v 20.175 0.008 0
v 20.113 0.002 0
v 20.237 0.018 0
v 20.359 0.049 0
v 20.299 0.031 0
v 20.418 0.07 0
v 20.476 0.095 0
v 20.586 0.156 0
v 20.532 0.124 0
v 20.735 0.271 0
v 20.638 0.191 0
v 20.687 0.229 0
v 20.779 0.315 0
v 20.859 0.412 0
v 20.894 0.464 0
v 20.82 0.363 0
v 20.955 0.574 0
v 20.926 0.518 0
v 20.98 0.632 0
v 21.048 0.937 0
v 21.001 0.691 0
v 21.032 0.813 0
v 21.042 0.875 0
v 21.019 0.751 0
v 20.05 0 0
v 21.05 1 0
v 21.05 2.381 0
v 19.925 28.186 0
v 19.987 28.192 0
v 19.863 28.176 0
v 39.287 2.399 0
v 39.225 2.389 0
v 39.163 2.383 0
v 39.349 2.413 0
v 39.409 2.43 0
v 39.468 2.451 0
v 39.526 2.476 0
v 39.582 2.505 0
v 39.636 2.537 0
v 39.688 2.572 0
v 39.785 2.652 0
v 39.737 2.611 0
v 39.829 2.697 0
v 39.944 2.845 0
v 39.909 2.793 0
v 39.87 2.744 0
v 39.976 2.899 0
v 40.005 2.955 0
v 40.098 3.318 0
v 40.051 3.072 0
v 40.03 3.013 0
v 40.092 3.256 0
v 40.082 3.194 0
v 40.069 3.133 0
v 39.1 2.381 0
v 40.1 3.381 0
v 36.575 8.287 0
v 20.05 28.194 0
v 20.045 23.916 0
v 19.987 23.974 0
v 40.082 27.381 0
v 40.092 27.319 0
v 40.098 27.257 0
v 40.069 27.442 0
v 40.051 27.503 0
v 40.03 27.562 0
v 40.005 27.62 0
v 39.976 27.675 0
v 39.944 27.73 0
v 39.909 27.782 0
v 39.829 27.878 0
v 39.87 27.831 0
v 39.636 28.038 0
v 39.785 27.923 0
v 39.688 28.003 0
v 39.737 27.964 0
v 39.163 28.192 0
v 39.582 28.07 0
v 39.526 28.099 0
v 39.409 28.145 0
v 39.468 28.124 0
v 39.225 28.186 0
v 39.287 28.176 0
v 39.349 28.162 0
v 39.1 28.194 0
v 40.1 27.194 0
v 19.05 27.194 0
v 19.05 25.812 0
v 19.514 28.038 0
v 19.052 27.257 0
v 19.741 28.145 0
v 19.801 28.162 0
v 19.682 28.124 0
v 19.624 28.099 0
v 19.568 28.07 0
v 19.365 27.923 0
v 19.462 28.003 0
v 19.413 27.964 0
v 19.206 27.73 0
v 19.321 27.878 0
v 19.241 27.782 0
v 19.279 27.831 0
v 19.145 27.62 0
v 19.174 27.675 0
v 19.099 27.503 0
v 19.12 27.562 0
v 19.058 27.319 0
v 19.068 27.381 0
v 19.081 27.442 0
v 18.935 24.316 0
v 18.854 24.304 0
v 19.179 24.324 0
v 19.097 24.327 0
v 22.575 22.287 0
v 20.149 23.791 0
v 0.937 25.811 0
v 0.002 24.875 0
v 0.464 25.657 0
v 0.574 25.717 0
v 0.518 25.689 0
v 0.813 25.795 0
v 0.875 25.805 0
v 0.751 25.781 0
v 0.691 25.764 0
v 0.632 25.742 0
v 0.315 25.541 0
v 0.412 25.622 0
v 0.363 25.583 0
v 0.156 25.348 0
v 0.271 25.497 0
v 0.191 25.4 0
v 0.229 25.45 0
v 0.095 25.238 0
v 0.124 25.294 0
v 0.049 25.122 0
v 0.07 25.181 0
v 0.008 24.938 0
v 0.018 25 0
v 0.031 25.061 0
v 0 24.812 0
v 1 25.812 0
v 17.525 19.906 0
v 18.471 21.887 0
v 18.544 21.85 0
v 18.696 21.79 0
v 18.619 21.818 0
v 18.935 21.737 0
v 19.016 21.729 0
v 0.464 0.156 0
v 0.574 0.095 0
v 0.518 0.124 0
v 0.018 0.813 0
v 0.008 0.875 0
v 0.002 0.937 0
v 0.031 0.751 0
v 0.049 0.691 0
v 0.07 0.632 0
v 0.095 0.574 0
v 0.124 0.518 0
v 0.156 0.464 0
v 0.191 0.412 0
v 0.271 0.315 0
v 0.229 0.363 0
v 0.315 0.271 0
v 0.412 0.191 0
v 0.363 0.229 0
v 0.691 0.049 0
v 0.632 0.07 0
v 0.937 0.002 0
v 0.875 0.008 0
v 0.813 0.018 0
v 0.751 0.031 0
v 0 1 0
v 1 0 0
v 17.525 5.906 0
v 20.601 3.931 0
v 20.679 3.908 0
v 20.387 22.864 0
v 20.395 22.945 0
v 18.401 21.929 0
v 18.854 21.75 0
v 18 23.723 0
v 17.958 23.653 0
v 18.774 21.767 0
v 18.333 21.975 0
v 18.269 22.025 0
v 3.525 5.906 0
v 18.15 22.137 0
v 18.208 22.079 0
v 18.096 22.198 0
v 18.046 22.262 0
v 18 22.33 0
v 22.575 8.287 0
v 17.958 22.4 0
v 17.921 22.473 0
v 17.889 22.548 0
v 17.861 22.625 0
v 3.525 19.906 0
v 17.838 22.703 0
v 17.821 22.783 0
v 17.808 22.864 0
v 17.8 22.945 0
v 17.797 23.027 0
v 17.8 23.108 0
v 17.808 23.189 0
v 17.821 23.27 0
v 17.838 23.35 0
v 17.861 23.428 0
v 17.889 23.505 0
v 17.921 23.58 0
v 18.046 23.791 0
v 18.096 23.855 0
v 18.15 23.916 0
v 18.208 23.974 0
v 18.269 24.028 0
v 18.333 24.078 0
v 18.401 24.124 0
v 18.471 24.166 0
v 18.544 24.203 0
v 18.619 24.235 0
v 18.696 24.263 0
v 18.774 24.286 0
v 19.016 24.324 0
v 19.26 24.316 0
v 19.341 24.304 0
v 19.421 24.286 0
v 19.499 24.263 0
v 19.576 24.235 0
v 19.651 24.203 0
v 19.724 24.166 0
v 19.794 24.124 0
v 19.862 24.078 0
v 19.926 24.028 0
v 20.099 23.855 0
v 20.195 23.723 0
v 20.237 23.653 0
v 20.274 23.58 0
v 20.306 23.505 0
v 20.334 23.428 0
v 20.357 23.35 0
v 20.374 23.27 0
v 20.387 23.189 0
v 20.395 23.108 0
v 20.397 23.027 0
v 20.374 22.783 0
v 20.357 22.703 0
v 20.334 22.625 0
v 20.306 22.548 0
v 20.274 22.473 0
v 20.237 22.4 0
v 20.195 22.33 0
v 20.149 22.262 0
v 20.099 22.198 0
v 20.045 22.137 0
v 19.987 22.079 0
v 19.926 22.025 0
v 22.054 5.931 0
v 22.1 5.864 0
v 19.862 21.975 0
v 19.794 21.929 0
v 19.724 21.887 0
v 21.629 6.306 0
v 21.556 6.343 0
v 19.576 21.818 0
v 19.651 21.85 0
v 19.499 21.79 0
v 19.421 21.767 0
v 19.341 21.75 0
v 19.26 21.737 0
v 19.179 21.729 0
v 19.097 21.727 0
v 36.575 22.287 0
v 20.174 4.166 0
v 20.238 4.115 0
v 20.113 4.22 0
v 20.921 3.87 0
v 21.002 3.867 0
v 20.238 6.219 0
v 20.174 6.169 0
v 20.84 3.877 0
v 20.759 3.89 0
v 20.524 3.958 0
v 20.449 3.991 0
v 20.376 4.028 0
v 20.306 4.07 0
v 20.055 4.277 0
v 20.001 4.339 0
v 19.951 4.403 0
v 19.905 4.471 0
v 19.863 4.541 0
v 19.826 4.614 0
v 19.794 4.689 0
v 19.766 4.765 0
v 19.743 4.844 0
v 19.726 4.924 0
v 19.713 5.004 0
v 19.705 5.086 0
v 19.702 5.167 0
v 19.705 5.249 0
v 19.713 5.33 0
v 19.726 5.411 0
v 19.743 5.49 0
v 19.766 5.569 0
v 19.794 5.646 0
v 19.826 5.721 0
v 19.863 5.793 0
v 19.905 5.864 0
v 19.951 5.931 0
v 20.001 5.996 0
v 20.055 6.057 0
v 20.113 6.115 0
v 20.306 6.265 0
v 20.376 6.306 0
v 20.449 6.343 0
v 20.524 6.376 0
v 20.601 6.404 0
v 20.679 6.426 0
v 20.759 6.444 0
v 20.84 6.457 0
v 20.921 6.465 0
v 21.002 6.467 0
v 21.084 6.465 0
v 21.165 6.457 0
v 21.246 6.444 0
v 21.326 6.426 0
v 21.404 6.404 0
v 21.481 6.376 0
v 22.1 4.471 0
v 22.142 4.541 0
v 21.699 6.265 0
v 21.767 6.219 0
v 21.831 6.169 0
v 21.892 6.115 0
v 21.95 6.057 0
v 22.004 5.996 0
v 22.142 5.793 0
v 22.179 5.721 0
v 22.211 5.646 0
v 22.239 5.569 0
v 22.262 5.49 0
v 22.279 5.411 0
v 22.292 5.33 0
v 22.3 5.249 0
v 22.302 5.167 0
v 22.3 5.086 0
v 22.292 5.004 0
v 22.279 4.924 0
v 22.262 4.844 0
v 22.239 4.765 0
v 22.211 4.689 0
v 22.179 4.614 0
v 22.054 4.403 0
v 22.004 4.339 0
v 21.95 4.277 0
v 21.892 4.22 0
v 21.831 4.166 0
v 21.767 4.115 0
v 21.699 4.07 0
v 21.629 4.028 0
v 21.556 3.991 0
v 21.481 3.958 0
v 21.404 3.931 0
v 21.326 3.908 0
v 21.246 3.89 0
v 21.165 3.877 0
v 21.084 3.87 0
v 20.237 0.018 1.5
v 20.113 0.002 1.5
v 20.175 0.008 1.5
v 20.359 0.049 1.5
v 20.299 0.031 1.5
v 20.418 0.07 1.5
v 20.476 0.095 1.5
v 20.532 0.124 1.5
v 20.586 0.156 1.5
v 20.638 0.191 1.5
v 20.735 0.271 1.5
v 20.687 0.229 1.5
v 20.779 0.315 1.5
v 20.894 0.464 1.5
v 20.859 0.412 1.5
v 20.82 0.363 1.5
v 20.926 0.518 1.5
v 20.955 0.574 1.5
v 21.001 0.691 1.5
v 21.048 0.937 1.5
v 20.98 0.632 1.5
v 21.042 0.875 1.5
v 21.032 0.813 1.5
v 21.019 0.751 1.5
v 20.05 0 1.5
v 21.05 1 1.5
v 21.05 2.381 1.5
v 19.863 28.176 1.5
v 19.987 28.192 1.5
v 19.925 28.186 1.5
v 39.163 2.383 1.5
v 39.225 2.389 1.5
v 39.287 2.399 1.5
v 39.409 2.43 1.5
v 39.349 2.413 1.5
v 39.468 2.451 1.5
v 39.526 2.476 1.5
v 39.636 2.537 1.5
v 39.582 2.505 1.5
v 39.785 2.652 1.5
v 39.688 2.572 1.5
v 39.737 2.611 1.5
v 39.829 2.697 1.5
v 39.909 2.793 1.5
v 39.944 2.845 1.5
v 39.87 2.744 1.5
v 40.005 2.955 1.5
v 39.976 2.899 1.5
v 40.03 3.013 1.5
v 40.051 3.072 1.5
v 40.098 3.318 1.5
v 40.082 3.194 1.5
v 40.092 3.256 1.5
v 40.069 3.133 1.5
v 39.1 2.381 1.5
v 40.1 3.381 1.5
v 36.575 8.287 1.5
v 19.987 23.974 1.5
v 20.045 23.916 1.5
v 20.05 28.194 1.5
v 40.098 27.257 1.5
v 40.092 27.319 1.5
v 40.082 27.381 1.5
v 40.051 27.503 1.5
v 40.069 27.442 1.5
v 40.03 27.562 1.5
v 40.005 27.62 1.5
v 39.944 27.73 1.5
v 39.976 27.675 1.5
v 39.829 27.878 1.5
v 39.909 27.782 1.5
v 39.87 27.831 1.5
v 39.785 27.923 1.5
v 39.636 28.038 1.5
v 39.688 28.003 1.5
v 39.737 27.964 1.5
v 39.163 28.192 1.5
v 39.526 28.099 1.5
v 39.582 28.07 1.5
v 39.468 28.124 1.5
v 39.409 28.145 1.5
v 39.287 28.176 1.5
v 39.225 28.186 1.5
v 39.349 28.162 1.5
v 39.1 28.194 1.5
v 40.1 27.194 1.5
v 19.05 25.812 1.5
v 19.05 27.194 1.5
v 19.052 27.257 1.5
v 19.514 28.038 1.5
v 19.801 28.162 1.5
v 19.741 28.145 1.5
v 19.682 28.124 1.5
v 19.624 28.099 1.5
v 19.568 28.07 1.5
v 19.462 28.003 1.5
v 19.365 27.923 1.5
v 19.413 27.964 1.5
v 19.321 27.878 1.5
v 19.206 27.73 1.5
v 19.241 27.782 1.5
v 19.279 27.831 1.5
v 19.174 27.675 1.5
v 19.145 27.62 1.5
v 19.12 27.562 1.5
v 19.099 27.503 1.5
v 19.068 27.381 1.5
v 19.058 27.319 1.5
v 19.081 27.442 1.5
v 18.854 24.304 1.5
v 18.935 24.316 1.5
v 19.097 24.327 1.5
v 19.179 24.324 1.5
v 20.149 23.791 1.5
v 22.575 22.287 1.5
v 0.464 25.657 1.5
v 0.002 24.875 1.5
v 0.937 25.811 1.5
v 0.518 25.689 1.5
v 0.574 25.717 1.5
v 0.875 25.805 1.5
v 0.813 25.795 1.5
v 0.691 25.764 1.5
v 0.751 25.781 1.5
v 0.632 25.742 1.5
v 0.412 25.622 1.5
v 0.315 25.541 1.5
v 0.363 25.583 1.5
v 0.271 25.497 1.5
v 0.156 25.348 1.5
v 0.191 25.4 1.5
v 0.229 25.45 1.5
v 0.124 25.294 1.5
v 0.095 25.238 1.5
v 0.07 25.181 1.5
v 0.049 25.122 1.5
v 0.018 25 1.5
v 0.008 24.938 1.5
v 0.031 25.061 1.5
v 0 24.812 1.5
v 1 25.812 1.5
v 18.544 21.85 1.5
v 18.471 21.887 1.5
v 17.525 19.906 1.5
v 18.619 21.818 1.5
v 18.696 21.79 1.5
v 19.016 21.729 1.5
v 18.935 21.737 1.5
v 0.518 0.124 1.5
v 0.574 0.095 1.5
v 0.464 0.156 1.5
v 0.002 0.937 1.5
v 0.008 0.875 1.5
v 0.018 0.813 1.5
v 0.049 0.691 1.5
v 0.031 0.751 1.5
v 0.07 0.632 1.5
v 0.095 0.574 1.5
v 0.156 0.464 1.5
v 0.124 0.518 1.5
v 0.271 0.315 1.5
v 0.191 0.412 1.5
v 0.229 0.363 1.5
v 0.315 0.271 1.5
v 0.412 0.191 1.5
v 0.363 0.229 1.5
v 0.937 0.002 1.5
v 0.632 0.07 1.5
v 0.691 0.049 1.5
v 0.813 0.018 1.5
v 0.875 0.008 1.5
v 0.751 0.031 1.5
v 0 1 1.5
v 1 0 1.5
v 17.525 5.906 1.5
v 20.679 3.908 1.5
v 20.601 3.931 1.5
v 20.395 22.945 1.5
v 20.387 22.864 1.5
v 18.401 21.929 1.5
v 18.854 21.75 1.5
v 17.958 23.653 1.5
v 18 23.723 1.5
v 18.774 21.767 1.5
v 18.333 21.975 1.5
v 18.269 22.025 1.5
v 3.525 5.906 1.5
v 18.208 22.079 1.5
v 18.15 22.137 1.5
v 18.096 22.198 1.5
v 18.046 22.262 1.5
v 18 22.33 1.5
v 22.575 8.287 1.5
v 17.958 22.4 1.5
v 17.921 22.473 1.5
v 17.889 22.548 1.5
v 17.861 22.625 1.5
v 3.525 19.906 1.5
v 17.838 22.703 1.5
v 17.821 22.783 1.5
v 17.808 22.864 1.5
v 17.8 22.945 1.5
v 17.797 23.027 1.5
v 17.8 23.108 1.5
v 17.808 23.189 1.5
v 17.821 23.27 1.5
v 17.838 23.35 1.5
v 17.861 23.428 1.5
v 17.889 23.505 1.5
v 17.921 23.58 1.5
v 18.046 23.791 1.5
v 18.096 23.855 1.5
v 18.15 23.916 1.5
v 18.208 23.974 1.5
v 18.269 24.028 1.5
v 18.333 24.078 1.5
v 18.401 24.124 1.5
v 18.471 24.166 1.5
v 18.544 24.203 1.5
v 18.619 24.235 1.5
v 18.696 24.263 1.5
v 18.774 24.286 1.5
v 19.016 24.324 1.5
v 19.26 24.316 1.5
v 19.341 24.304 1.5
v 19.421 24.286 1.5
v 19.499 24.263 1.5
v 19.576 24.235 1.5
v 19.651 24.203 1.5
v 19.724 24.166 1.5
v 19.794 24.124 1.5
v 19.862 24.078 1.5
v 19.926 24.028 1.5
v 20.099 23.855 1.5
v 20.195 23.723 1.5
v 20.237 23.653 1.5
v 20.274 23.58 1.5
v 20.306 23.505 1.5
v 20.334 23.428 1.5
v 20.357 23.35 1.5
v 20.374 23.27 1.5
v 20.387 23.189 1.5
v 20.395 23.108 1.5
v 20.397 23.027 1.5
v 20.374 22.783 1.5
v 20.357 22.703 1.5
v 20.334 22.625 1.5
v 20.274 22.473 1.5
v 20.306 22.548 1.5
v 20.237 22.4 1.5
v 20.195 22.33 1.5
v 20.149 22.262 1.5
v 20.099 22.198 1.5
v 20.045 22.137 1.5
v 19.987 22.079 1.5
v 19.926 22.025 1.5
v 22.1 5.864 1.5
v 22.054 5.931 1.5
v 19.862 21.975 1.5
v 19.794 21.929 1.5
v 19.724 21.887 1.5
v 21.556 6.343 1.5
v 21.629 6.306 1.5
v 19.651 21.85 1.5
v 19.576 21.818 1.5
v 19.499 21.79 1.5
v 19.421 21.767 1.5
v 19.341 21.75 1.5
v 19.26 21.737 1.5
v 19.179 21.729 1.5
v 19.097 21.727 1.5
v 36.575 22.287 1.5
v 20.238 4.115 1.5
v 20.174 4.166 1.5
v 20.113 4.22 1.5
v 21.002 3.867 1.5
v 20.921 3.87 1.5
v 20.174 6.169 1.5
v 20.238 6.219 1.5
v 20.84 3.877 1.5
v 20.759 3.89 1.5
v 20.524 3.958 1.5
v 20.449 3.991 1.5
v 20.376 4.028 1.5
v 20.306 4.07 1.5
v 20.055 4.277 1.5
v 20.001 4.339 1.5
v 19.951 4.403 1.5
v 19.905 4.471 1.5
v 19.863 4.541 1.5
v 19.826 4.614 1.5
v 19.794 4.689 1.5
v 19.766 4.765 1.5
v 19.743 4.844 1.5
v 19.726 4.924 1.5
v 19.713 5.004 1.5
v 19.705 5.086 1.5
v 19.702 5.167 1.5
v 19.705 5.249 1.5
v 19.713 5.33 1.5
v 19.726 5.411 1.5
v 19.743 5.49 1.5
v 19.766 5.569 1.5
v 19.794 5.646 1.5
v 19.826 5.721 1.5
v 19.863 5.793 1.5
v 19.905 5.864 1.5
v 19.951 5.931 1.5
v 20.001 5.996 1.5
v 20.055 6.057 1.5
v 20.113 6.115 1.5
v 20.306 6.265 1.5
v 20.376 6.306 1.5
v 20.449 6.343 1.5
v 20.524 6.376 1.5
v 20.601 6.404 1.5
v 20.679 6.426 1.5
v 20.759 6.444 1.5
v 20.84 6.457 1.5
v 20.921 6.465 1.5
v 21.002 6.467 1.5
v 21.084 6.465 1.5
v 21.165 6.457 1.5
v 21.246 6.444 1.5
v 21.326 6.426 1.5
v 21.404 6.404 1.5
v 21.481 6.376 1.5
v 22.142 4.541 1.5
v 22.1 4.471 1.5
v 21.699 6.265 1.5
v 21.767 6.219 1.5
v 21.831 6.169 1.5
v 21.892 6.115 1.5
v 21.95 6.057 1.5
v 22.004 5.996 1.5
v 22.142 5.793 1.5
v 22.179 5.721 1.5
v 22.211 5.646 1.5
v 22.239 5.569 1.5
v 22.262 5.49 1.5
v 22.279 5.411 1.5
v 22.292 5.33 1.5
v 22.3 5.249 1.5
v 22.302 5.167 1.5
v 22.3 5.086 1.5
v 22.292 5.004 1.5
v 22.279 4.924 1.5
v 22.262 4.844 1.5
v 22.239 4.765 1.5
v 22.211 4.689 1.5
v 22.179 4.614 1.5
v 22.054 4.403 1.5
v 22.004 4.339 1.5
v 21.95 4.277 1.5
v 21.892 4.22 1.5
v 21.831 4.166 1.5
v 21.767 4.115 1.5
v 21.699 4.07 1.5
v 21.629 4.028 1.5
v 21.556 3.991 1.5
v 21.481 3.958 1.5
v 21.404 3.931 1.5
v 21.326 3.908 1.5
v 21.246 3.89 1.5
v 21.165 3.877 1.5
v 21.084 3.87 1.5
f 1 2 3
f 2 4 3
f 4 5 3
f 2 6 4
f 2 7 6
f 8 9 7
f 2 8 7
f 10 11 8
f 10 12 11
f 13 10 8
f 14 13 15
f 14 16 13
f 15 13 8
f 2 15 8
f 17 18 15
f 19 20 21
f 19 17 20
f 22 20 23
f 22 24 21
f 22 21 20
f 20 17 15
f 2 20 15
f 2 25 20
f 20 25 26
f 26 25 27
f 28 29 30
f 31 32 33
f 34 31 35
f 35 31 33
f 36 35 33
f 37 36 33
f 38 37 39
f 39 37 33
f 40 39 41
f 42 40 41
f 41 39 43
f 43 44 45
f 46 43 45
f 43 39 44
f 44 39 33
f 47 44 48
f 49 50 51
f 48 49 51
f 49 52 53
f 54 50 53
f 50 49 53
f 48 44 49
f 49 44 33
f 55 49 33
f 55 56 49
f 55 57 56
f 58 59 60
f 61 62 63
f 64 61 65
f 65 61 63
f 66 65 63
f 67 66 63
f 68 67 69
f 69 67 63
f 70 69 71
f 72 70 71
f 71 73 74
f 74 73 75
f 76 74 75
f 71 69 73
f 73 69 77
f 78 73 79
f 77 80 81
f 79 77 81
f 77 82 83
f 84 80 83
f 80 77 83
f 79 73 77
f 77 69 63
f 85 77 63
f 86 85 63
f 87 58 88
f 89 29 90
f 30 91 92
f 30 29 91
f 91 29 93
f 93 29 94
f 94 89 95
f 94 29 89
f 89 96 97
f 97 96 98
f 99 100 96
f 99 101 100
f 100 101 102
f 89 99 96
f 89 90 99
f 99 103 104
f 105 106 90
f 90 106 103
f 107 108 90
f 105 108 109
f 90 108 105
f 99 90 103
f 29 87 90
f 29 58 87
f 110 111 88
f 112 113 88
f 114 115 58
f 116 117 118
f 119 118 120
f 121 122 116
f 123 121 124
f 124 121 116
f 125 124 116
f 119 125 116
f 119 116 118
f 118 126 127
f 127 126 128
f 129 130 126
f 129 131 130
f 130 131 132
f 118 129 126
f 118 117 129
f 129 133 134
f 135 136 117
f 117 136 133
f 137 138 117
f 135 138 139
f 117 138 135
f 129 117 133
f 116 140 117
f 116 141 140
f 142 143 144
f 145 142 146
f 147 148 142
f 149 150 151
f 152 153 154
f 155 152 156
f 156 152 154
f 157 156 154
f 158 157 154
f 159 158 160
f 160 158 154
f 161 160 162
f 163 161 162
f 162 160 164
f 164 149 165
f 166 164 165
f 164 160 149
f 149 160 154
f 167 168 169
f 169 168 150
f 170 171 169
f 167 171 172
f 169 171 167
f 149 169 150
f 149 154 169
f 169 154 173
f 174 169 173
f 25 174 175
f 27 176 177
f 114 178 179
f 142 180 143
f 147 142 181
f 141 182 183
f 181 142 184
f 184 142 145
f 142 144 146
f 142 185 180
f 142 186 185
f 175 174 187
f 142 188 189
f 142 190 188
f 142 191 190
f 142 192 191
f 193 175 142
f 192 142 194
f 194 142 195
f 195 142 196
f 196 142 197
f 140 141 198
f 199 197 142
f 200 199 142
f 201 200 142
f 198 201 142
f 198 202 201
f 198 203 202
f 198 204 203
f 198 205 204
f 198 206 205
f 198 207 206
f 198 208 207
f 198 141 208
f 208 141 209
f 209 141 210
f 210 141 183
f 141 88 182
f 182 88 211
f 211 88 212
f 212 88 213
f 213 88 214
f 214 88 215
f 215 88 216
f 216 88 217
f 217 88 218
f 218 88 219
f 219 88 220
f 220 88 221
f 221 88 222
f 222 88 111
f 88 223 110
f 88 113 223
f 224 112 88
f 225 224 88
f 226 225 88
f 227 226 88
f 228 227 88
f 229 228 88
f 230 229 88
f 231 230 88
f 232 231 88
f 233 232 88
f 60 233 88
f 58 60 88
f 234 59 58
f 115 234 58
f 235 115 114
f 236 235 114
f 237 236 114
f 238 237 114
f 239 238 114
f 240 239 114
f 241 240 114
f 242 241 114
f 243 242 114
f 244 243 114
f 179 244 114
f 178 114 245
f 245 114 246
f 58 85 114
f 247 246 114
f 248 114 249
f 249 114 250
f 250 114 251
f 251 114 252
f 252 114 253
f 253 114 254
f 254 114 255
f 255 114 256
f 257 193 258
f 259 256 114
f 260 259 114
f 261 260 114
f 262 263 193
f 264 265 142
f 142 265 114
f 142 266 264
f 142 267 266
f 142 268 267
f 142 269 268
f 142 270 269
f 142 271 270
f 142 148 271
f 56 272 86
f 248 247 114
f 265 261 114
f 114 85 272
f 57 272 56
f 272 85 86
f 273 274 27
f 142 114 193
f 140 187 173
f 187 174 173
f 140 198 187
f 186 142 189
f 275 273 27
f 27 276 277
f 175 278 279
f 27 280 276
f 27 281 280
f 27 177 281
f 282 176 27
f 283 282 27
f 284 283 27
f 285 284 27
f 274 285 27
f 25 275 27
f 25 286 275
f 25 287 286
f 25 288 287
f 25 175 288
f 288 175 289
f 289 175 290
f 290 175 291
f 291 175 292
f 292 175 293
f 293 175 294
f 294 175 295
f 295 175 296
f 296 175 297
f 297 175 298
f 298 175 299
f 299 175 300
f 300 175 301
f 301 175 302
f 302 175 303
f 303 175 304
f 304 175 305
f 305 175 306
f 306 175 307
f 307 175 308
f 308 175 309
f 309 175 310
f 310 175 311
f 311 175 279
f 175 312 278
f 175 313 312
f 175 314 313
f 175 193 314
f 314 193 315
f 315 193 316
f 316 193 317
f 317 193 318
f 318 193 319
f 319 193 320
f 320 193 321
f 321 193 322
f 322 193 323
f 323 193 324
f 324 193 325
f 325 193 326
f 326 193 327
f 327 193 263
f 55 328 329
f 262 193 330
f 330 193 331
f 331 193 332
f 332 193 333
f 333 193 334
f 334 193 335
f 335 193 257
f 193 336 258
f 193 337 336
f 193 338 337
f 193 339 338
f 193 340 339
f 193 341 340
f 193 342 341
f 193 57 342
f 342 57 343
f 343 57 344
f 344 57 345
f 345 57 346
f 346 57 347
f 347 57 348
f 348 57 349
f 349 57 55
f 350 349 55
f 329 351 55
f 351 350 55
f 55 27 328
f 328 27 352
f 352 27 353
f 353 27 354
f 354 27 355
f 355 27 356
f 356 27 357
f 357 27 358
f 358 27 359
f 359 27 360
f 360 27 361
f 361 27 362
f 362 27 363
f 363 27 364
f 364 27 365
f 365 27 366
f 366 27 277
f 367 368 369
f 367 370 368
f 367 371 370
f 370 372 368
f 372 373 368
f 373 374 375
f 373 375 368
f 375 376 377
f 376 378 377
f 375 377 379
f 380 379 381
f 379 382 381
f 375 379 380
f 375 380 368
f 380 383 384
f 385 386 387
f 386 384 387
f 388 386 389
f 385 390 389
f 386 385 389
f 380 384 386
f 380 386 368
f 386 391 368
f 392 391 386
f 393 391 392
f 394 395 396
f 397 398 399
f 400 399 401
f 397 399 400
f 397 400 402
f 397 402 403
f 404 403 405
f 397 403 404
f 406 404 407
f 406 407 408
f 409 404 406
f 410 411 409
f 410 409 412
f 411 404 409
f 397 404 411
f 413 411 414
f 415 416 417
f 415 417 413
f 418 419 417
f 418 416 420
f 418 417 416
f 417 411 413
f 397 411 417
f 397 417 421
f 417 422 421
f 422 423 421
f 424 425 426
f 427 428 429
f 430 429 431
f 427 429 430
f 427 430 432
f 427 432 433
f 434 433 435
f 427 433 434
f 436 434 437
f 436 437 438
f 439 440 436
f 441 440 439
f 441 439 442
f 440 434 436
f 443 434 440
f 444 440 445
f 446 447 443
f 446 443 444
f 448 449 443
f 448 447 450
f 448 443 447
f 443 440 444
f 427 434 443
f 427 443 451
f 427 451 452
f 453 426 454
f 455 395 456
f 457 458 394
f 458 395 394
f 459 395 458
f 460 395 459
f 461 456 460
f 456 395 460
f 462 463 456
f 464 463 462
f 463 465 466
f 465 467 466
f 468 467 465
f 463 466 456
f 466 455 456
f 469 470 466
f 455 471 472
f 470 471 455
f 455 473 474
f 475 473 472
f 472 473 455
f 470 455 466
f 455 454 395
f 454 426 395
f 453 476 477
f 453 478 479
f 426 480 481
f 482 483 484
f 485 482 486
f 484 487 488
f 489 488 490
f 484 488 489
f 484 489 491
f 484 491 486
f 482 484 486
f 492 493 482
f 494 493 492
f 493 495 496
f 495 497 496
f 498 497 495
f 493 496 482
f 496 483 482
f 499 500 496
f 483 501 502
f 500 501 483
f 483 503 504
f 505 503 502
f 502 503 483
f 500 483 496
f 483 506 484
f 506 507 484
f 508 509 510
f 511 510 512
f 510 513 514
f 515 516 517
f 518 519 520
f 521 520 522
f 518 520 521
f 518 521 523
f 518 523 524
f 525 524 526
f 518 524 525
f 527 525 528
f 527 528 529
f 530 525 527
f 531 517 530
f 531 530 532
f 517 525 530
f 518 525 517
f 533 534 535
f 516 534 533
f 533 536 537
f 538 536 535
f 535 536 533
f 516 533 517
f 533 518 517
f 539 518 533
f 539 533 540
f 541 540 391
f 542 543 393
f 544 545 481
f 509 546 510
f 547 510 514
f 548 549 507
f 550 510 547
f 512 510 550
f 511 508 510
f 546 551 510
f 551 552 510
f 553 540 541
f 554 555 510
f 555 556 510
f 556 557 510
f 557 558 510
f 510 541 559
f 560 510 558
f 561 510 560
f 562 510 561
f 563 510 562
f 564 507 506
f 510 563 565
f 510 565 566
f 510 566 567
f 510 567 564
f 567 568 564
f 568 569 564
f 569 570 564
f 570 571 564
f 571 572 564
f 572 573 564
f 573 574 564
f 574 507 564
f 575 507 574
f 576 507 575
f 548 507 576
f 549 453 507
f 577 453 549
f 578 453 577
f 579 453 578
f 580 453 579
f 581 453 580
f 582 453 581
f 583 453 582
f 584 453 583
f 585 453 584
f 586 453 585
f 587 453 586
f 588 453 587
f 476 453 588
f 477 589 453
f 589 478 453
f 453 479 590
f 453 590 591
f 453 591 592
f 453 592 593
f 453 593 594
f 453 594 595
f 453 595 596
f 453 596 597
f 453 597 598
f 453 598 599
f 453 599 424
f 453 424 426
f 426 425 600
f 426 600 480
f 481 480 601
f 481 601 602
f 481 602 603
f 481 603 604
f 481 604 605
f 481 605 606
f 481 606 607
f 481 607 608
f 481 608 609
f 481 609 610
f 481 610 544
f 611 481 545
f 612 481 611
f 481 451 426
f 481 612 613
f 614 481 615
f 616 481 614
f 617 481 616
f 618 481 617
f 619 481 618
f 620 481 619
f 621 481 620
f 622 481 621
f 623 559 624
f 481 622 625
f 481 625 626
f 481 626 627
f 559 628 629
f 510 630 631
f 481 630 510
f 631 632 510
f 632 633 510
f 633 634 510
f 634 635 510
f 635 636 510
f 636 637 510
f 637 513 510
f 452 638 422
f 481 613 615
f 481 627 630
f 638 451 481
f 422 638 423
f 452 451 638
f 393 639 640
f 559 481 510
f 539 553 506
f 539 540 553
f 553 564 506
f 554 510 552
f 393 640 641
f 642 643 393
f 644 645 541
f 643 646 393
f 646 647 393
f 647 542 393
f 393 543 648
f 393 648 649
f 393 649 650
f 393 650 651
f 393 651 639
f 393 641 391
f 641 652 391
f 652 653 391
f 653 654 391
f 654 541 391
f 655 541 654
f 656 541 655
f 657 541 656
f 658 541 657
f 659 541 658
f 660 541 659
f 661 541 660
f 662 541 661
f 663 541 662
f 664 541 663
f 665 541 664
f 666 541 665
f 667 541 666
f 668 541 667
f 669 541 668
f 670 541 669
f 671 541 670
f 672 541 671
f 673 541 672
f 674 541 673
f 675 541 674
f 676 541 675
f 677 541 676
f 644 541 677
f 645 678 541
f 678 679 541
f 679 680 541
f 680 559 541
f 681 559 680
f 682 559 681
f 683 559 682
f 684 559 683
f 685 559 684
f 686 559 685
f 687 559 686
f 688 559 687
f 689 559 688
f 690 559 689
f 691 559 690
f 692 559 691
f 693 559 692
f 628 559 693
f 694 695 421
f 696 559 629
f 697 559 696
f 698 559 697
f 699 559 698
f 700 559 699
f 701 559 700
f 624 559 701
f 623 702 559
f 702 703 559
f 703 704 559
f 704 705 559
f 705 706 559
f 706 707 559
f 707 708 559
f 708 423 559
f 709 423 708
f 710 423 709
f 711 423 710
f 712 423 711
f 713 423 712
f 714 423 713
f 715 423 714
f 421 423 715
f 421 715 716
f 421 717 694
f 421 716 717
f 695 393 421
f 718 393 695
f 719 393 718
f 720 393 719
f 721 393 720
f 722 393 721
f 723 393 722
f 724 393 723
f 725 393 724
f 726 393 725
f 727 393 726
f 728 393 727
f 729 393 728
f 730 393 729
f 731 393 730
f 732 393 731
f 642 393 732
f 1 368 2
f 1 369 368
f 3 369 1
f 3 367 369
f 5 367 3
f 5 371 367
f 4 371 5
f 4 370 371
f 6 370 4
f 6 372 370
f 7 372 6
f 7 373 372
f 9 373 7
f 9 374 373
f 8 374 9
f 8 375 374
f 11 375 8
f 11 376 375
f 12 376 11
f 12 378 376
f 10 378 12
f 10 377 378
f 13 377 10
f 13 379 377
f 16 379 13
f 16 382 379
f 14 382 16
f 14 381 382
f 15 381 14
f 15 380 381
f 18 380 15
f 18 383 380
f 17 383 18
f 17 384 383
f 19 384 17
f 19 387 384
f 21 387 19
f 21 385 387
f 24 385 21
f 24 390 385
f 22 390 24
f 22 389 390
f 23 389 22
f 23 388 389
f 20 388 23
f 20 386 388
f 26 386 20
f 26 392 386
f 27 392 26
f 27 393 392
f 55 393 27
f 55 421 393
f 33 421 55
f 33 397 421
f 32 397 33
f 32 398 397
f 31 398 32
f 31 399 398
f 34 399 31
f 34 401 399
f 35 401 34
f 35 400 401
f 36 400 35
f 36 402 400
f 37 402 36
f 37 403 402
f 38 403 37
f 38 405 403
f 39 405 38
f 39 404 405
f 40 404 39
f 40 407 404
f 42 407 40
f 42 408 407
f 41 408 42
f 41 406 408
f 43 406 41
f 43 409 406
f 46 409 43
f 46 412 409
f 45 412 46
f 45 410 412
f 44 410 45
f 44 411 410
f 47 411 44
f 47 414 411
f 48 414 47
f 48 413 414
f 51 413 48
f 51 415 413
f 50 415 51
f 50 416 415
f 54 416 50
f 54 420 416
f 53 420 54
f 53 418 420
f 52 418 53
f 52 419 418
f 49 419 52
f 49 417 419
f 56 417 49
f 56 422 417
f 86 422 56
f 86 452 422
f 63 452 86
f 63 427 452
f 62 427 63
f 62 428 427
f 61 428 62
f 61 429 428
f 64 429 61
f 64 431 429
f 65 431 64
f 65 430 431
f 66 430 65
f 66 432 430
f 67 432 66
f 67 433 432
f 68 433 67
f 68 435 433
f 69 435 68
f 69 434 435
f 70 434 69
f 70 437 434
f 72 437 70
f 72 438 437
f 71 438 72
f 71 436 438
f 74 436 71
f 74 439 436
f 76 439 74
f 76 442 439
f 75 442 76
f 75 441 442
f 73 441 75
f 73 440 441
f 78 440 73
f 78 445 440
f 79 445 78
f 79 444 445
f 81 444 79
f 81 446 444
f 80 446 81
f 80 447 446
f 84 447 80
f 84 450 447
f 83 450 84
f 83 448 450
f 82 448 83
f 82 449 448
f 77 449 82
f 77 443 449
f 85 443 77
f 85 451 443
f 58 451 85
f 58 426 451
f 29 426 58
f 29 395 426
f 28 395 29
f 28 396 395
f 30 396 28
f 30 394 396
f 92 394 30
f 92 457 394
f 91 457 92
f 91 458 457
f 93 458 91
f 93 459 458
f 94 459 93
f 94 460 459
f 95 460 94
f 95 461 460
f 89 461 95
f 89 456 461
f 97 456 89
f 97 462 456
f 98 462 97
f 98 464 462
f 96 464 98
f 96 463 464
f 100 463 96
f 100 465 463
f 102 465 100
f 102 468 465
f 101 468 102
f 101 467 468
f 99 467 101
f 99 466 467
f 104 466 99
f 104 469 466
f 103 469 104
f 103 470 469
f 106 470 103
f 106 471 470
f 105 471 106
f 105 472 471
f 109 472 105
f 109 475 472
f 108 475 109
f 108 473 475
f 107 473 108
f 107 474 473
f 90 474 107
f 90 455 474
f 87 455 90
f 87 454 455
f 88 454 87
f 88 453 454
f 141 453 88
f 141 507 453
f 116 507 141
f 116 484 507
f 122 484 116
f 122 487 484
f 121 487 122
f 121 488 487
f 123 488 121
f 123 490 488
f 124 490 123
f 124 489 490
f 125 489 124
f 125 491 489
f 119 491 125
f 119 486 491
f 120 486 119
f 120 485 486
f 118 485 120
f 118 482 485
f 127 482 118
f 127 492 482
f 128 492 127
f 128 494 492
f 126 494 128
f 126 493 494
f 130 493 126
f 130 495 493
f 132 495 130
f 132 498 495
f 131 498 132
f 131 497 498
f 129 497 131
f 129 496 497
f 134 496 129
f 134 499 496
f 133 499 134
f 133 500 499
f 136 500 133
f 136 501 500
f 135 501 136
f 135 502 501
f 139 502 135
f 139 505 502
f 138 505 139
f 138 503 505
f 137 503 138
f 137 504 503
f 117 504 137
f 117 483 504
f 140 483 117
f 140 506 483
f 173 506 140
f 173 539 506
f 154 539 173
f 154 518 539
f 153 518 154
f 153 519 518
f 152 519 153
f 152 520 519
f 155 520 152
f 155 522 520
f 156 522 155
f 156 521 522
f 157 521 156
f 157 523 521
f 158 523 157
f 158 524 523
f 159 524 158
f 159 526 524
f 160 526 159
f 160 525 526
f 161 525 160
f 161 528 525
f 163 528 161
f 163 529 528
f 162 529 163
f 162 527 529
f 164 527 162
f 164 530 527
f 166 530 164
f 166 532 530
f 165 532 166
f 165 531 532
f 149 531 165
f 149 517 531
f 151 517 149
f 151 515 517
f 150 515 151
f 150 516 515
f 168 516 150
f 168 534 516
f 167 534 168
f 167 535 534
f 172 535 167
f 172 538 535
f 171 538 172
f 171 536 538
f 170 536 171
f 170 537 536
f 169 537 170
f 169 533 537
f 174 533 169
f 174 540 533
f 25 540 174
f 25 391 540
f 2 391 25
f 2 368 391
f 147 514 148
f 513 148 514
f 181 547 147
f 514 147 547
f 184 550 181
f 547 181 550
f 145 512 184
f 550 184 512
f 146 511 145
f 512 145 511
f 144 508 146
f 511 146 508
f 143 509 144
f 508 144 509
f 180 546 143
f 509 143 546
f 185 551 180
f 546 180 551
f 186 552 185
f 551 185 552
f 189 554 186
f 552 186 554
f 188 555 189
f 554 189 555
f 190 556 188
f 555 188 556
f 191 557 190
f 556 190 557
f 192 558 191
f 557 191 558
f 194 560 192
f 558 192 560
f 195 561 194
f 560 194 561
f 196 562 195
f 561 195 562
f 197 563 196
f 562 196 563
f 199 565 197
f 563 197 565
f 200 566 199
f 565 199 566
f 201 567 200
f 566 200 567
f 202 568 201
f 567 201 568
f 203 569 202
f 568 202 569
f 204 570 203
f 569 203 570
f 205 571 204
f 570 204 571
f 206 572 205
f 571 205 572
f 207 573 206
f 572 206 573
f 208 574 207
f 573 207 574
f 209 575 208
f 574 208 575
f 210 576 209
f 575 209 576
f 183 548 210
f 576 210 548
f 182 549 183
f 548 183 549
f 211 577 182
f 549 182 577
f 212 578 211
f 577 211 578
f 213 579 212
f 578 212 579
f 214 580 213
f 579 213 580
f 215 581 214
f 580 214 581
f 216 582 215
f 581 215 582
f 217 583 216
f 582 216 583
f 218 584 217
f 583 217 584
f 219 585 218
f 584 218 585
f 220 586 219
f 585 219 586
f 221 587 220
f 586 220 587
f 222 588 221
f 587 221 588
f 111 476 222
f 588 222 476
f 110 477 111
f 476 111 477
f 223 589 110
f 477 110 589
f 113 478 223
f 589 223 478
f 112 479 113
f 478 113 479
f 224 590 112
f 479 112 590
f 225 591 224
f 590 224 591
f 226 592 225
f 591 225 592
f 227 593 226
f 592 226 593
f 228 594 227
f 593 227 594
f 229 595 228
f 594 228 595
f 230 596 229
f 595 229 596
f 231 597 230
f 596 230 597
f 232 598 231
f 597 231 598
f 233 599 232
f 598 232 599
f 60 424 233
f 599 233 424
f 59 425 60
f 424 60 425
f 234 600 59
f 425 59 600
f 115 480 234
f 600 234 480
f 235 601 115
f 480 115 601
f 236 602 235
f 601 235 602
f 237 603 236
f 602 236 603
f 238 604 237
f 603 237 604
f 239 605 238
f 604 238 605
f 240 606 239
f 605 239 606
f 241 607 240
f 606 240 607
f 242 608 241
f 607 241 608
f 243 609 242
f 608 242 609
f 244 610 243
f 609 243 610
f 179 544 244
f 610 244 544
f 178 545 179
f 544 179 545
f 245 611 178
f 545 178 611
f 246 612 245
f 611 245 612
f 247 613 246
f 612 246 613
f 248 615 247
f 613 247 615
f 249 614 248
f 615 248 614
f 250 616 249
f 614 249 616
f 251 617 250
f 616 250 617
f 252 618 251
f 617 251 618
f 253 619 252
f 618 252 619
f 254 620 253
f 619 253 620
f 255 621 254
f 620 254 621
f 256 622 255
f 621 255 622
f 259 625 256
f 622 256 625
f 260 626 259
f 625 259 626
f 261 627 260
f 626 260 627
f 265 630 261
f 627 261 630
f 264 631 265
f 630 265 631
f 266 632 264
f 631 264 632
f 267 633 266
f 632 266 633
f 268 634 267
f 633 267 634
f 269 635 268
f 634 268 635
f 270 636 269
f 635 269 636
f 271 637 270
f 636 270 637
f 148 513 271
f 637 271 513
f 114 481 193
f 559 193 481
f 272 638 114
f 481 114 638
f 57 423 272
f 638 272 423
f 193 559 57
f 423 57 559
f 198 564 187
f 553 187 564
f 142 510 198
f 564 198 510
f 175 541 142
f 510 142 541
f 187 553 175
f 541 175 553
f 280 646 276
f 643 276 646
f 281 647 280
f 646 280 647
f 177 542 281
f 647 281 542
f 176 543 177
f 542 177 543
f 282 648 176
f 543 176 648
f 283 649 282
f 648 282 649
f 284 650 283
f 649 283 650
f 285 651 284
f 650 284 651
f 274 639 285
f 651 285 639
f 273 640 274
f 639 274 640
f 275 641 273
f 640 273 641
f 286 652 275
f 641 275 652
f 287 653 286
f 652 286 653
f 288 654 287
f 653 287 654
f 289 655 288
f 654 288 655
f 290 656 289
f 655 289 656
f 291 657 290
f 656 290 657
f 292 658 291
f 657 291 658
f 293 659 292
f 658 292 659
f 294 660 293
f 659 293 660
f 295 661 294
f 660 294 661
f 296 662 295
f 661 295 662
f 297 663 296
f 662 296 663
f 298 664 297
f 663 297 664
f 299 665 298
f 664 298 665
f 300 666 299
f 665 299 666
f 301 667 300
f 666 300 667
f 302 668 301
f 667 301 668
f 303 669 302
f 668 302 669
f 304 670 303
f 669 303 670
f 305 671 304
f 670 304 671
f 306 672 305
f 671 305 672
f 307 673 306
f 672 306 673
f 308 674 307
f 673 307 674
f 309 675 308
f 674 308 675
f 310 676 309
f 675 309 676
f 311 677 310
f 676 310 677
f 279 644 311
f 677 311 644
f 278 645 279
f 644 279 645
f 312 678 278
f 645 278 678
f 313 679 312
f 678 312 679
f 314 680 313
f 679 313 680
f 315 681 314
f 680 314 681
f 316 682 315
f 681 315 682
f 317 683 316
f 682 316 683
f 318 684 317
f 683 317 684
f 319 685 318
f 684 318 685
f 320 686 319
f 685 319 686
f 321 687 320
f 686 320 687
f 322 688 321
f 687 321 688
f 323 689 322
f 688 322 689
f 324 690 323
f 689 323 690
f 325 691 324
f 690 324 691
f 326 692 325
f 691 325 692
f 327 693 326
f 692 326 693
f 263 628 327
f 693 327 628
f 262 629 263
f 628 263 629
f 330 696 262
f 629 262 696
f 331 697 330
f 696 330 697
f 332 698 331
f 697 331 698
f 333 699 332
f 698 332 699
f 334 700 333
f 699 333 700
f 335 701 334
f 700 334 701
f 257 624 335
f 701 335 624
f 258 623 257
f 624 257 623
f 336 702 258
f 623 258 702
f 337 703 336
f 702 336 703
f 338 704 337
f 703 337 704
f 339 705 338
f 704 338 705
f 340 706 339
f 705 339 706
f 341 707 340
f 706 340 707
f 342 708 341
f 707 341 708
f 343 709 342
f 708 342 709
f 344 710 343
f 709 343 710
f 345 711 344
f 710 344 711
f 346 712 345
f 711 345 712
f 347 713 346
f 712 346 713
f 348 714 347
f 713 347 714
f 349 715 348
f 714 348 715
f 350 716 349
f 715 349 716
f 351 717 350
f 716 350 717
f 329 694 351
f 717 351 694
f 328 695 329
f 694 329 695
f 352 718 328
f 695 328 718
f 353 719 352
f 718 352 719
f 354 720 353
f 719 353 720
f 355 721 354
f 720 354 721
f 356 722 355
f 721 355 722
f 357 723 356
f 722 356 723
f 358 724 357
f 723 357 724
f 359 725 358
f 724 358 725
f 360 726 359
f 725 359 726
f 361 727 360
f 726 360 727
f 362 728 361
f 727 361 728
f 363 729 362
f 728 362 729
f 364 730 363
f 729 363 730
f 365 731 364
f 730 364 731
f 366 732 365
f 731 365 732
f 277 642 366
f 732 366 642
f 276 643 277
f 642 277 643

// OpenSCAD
// file: ../modules/shapes.scad
// draws a square with rounded corners
module squircle(
    size = [1,1],
    radius = 1,
    center = false){
    
    x = size[0];
    y = size[1];
    radius = min(x/2,min(y/2, radius));
    translation = [0,0];
        
    module corner(){
            intersection(){
                square([radius,radius]);
                translate([radius, radius])
                    circle(radius);
            }
    }
    
    module body(){
    
        corner();
        
        translate([0, y])        
            rotate([0,0,-90])
                corner();
        
        translate([x, y])        
            rotate([0,0,180])
                corner();
        
        translate([x, 0])        
            rotate([0,0, 90])
                corner();
        
        translate([radius, 0])
            square([x - 2 * radius, radius]);
        
        translate([0, radius])
            square([x, y - radius * 2]);
            
        translate([radius, y - radius])
            square([x - 2 * radius, radius]);
    }
    
    if(center)
        translate([-x/2, -y/2])
            body();
    else
        body();
}
// file: ../modules/keycap.scad
use <shapes.scad>

// draws a rough no-profile at keycap 0,0 1U space
module keycap(keyHeight = 1.0){
  
    1U = 19.05;
    width = 18;
    depth = 18 * keyHeight;
    height = 9;

    translate([1U/2, 1U/2, 7])
        linear_extrude(height, scale = [0.7,0.7])
          squircle([width, depth], 1, center = true);	
}

keycap($fn = 100);
// file: ../modules/switch.scad
use<shapes.scad>;

// draws a rough Cherry MX style switch at 0,0 1U space
module switch(){
    
    ringWidth = 15.6;
    ringHeight = 1.0;

    bottomTopWidth = 14.0;
    bottomBottomWidth = 12.0;
    bottomHeight = 5.0;

    topBottomWidth = 14.5;
    topTopWidth = 10;
    topHeight = 11.6 - bottomHeight - ringHeight;

    module switch_stem(){

        width = 3.6;
        height = 3.6;
        depth = 1.2;
        edgeRadius = 0.2;

		color("FireBrick",1)
            translate([0,0, ringHeight + topHeight])
                linear_extrude(height = height){
                    squircle([width, depth], edgeRadius, true);
                    rotate([0,0,90])
                        squircle([width, depth], edgeRadius, true);
                }
    }

    module switch_top(){
		color("WhiteSmoke",1)
            translate([0,0,ringHeight])
                linear_extrude(topHeight, scale = topTopWidth / topBottomWidth)
                    translate([-topBottomWidth/2,-topBottomWidth/2,0])
                        squircle([topBottomWidth,topBottomWidth], 1.0);
    }
                    
    module switch_middle(){
		color("WhiteSmoke",1)
            linear_extrude(ringHeight)
                squircle([ringWidth, ringWidth], 1.0, center = true);
    }

    module switch_bottom(){
		color("WhiteSmoke",1)
            translate([0,0,-bottomHeight])
                linear_extrude(bottomHeight, scale = bottomTopWidth / bottomBottomWidth)
                    translate([-bottomBottomWidth/2,-bottomBottomWidth/2,0])
                        squircle([bottomBottomWidth,bottomBottomWidth], 1.0);
    }

    translate([19.05/2,19.05/2,0]){
        switch_stem();
        switch_top();
        switch_middle();
        switch_bottom();
    }
}

switch();
// file: ../modules/bearingMount.scad
include <../config.scad>;
use <./plate.scad>;

bearingOffsetXY = 
    sqrt(
        (TRACKBALL_DIAMETER * TRACKBALL_DIAMETER) / 4 -
        ((BEARING_OFFSET_Z + PLATE_THICKNESS) * (BEARING_OFFSET_Z + PLATE_THICKNESS)))
        + BEARING_DIAMETER * 0.5;

module hole(){

    linear_extrude(BEARING_BOLT_CLEARANCE_Z){
        boltHole();

        translate([0,-SENSOR_PCB_MOUNT_OFFSET * 0.5])
            square([BOLT_DIAMETER + BOLT_TOLERENCE * 2, SENSOR_PCB_MOUNT_OFFSET], center = true);
    }

    translate([0,0, BEARING_BOLT_CLEARANCE_Z])
        linear_extrude(BOLT_TOP_HEIGHT){

            circle(d = BOLT_TOP_DIAMETER + BOLT_TOLERENCE * 2);            
            
            translate([0,-SENSOR_PCB_MOUNT_OFFSET * 0.5])
                square([BOLT_TOP_DIAMETER + BOLT_TOLERENCE * 2, SENSOR_PCB_MOUNT_OFFSET], center = true);
        }
    
}

module ring(){

    trackballRadius = getTrackballHoleRadius();
    ringWidthBottom = TRACKBALL_PLATE_BEZEL;
    
    union(){

        rotate_extrude(convexity = 10)
            minkowski(){
                difference(){
                    polygon([
                        [0,0],
                        [trackballRadius + ringWidthBottom - BEARING_MOUNT_TOP_CURVE_RADIUS, 0],
                        [trackballRadius - BEARING_MOUNT_TOP_CURVE_RADIUS + BEARING_MOUNT_TOP_X_MAX, BEARING_MOUNT_HEIGHT - BEARING_MOUNT_TOP_CURVE_RADIUS],
                        [0, BEARING_MOUNT_HEIGHT - BEARING_MOUNT_TOP_CURVE_RADIUS],
                    ]);
                    
                    ballCutoutRadius = TRACKBALL_DIAMETER * 0.5 + TRACKBALL_BEARING_MOUNT_CLEARANCE;

                    translate([0,getTrackballZ()])
                        intersection(){
                            circle(r = ballCutoutRadius);
                            translate([0, -ballCutoutRadius])
                                square([ballCutoutRadius, ballCutoutRadius] * 2);
                        }
                }
                
                difference(){
                    circle(r = BEARING_MOUNT_TOP_CURVE_RADIUS);
                    translate([-BEARING_MOUNT_TOP_CURVE_RADIUS, -BEARING_MOUNT_TOP_CURVE_RADIUS * 2])
                        square([BEARING_MOUNT_TOP_CURVE_RADIUS * 2, BEARING_MOUNT_TOP_CURVE_RADIUS * 2]);
                }
            }
    }
}

module bearingMountPlug(){

    much = 10;

    difference()
    {
        intersection(){
            translate([0, 0, BEARING_OFFSET_Z ])
                rotate([0,-30,0])
                    translate([0,0,-BEARING_OFFSET_Z - much])
                        cylinder(r = BEARING_DIAMETER * 0.5 + 0.5, h = BEARING_OFFSET_Z + much);

            translate([-bearingOffsetXY,0,0])
                ring();
        }
                
        translate([0,0, BEARING_OFFSET_Z])
            sphere(d = BEARING_DIAMETER + BEARING_TOLERENCE * 2);
    }
}

module bearingMount(){
    
    difference()
    {
        ring();

        // bearing holes

        for (i = [0:2]) {
            
            angle = 120 * i;

            translate([cos(angle), sin(angle), 0] * bearingOffsetXY)
                rotate([0, 0, angle]){
                                    
                    translate([0,0, BEARING_OFFSET_Z])
                        sphere(d = BEARING_DIAMETER + BEARING_TOLERENCE * 2);

                    bearingMountPlug();
                }
        }
            
        // bolt holes

        for (i = [0:1]) {
            
            angle = 180 * i;
            
            rotate([0, 0, angle])                
                translate([0, SENSOR_PCB_MOUNT_OFFSET])
                    hole();
        }        
    }
}

bearingMount($fn = 20);
// file: ../modules/pmwCover.scad
include <../config.scad>;
use <../modules/shapes.scad>;
use <../modules/plate.scad>;

module pmwCover(){

    module boltHoles(){

        boltCutout = BOLT_DIAMETER + BOLT_TOLERENCE * 2;
        cutoutLength = SENSOR_PCB_MOUNT_OFFSET - PMW_PCB_MOUNT_OFFSET + boltCutout;

        translate([0, PMW_PCB_MOUNT_OFFSET + (cutoutLength - boltCutout ) / 2])
            squircle([boltCutout, cutoutLength], boltCutout, true);

        translate([0, -PMW_PCB_MOUNT_OFFSET - (cutoutLength - boltCutout) / 2])
            squircle([boltCutout, cutoutLength], boltCutout, true);
    }

    difference(){
        linear_extrude(STANDOFF_HEIGHT)
            difference(){

                union(){
                    square([PMW_PCB_WIDTH, PMW_PCB_HEIGHT], center = true);
                    offset(1.5)
                        boltHoles();
                }

                boltHoles();

                // laser channel
                squircle(
                    size = [SENSOR_CHANNEL_WIDTH, SENSOR_CHANNEL_HEIGHT],
                    radius = 1,
                    center = true);
            }
        
        // cutout for sensor
        linear_extrude(SENSOR_LENS_HEIGHT_ABOVE_BOARD)
            squircle(
                size = [SENSOR_LENS_WIDTH, SENSOR_LENS_HEIGHT],
                radius = 4,
                center = true);
                
        // cutout for trackball
        translate([0, 0, getTrackballZ() + STANDOFF_HEIGHT])
            sphere(d = TRACKBALL_DIAMETER);
    }
}

pmwCover($fn = 20);
// file: ../modules/adnsCover.scad
include <../config.scad>;
use <../modules/shapes.scad>;
use <../modules/plate.scad>;

module adnsCover(){
    difference(){
        linear_extrude(STANDOFF_HEIGHT)
            difference(){
                circle(d = ADNS_PCB_DIAMETER);
                
                // bolts cutouts

                translate([0, SENSOR_PCB_MOUNT_OFFSET])
                    circle(d = BOLT_DIAMETER + BOLT_TOLERENCE * 2);

                translate([0, -SENSOR_PCB_MOUNT_OFFSET])
                    circle(d = BOLT_DIAMETER + BOLT_TOLERENCE * 2);

                // laser channel
                squircle(
                    size = [SENSOR_CHANNEL_WIDTH, SENSOR_CHANNEL_HEIGHT],
                    radius = 1,
                    center = true);
            }
        
        // cutout for sensor
        linear_extrude(SENSOR_LENS_HEIGHT_ABOVE_BOARD)
            squircle(
                size = [SENSOR_LENS_WIDTH, SENSOR_LENS_HEIGHT],
                radius = 4,
                center = true);
                
        // cutout to expose bottom rings
        linear_extrude(1)
            difference(){
                circle(d = ADNS_PCB_DIAMETER);

                translate([0, SENSOR_PCB_MOUNT_OFFSET])
                    circle(d = BOLT_DIAMETER + BOLT_TOLERENCE * 2 + 2);

                translate([0, -SENSOR_PCB_MOUNT_OFFSET])
                    circle(d = BOLT_DIAMETER + BOLT_TOLERENCE * 2 + 2);
            }
            
        // cutout for trackball
        translate([0, 0, getTrackballZ() + STANDOFF_HEIGHT])
            sphere(d = TRACKBALL_DIAMETER + SENDOR_TRACKBALL_CLEARANCE);
    }    
}

adnsCover($fn = 20);
// file: ../modules/keys.scad
include <../config.scad>;
use <./plate.scad>;
use <./adnsCover.scad>;
use <./pmwCover.scad>;
use <./bearingMount.scad>;
use <./switch.scad>;
use <./keycap.scad>;

// draws 3D keycaps and trackballs with the given positions in 1U space
module keys(
    keyPositions = [],
    keyHeight = 1.0){
        
    for(keyPosition = keyPositions)
        translate([keyPosition.x, keyPosition.y * keyHeight] * 1U + [PLATE_BEZEL,PLATE_BEZEL])
        
            if(keyPosition.z == "adns" || keyPosition.z == "pmw")
                translate([0.5, 0.5 * keyHeight, 0] * 1U){
                    
                    // trackball
                    translate([0, 0, TRACKBALL_POSITION_Z])
                        sphere(d = TRACKBALL_DIAMETER);
                        
                    // trackball mount
                    translate([0,0, PLATE_THICKNESS])
                        bearingMount();

                    // sensor cover                    
                    translate([0, 0, -getStandoffHeight()]){
                        if(keyPosition.z == "adns")
                            adnsCover();
                        else
                            pmwCover();
                    }

                    // sensor
                    translate([0, 0, -getStandoffHeight() - SENSOR_PCB_THICKNESS]){
                        if(keyPosition.z == "adns")
                            cylinder(d = TRACKBALL_BOLT_HOLES_DIAMETER, h = SENSOR_PCB_THICKNESS);
                        else
                            translate([0, 0, SENSOR_PCB_THICKNESS * 0.5])
                                cube([PMW_PCB_WIDTH, PMW_PCB_HEIGHT, SENSOR_PCB_THICKNESS], center = true);
                    }                            
                }

            else
                translate([0,  (keyHeight - 1) * 1U * 0.5, PLATE_THICKNESS]){
                    keycap(keyHeight);
                    switch();
                }
}

keys(FINGER_GRID, $fn = 100);
// file: ../modules/plate.scad
include <../config.scad>;

function getTrackballZ() = 
    -STANDOFF_HEIGHT +
    SENSOR_LENS_HEIGHT_ABOVE_BOARD +
    SENSOR_LENS_CLEARANCE +
    TRACKBALL_DIAMETER * 0.5;
    
function getTrackballHoleRadius() =
    sqrt(
        (TRACKBALL_DIAMETER * TRACKBALL_DIAMETER) / 4 -
        getTrackballZ() * getTrackballZ())
        + TRACKBALL_PLATE_CLEARANCE;

// draws a 2D circle representing a bolt hole
module boltHole(){
    circle(d = BOLT_DIAMETER + BOLT_TOLERENCE * 2);
}

// draws a 2D plate with the given key positions in 1U space
module plate(
    keyPositions = [],
    keyHeight = 1.0,
    boltPositions = [],
    cutHoles = true,
    hull = false){

    module solidPlate(){
        offset(delta = -PLATE_CURVE_RADIUS)
            for(keyPosition = keyPositions)
                translate([keyPosition.x, keyPosition.y * keyHeight] * 1U)

                    if(keyPosition.z == "adns" || keyPosition.z == "pmw")
                        translate([0.5, 0.5 * keyHeight] * 1U + [PLATE_BEZEL,PLATE_BEZEL])
                            offset(delta = TRACKBALL_PLATE_BEZEL)
                                circle(r = getTrackballHoleRadius());

                    else
                        square([1, keyHeight] * 1U + [1, 1] * PLATE_BEZEL * 2);
    }

    difference(){
        
        // outline
        minkowski() {
            if(hull)
                hull()
                    solidPlate();
            else
                solidPlate();
            
            circle(r = PLATE_CURVE_RADIUS);
        }
        
        // cutouts
        translate([PLATE_BEZEL, PLATE_BEZEL]){

            if(cutHoles){
                for(keyPosition = keyPositions)
                    translate([keyPosition.x + 0.5, (keyPosition.y + 0.5) * keyHeight] * 1U)

                    if(keyPosition.z == "adns" || keyPosition.z == "pmw")
                        circle(r = getTrackballHoleRadius());
                    else
                        translate(-[SWITCH_WIDTH, SWITCH_WIDTH] * 0.5)
                            square([SWITCH_WIDTH,SWITCH_WIDTH]);                        

                for(keyPosition = keyPositions){
                    translate([keyPosition.x + 0.5, (keyPosition.y + 0.5) * keyHeight] * 1U){
                        if(keyPosition.z == "adns" || keyPosition.z == "pmw"){
                            translate([0, SENSOR_PCB_MOUNT_OFFSET, 0])
                                boltHole();
                            translate([0, -SENSOR_PCB_MOUNT_OFFSET, 0])
                                boltHole();
                        }
                    }
                }

                for(boltPosition = boltPositions)
                    translate([boltPosition.x, boltPosition.y * keyHeight] * 1U)
                        boltHole();
            }
        }
    }
}

plate(
    keyPositions = FINGER_GRID,
    keyHeight = 1.0,
    boltPositions = FINGER_BOLT_HOLES,
    cutHoles = true,
    $fn = 100);
// file: ../config.scad
// draw flags

DRAW_DEBUG = true;

// MX constants

1U = 19.05;
SWITCH_WIDTH = 14;

// hardware

NUT_DIAMETER = 4;
NUT_HEIGHT = 3; // TODO: measure
NUT_TOLERENCE = 0.5;
BOLT_DIAMETER = 2.4; // M2 cleanance
BOLT_TOLERENCE = 0.1;
BOLT_TOP_DIAMETER = 3.8; // TODO: measure
BOLT_LENGTH = 16;
THUMB_BOLT_LENGTH = 20;

BEARING_DIAMETER = 3.175;

// plate

PLATE_THICKNESS = 1.5;
PLATE_BEZEL = 1;
PLATE_CURVE_RADIUS = 1;

// trackball

TRACKBALL_BOLT_HOLES_DIAMETER = 32;
TRACKBALL_DIAMETER = 24.9;
TRACKBALL_PLATE_CLEARANCE = 1.5;
TRACKBALL_PLATE_BEZEL = 7;

// common sensor

SENSOR_CHANNEL_WIDTH = 12;
SENSOR_CHANNEL_HEIGHT = 15;
SENSOR_LENS_CLEARANCE = 1.9; // 2.4 from ADNS9800/PMW3600 data sheets, but needed a slight reduction, probably due to print tolerences
SENSOR_LENS_HEIGHT_ABOVE_BOARD = 3.5;
SENSOR_LENS_WIDTH = 21; 
SENSOR_LENS_HEIGHT = 22;
SENSOR_PCB_MOUNT_OFFSET = 13.5; // distance in X/Y from centre
SENSOR_PCB_THICKNESS = 1.5;
STANDOFF_HEIGHT = 9.5;

// ADNS9800 sensor

ADNS_PCB_DIAMETER = 32;

// PMW3360 sensor

PMW_PCB_WIDTH = 21;
PMW_PCB_HEIGHT = 28;
PMW_PCB_MOUNT_OFFSET = 12;

// bearing mount

BEARING_OFFSET_Z = 2.5;
BEARING_MOUNT_TOP_CURVE_RADIUS = 0.75;
BEARING_MOUNT_TOP_X_MIN = 2.5;
BEARING_MOUNT_TOP_X_MAX = 4.0;
BEARING_MOUNT_HEIGHT = 4.5;
BEARING_BOLT_CLEARANCE_Z = 1;

// PCB

MX_PCB_OFFSET = 5;
PCB_CURVE_RADIUS = 2;
PCB_PLATE_OFFSET_Z = MX_PCB_OFFSET - PLATE_THICKNESS;
PCB_THICKNESS = 1.6;
PCB_UNDERSIDE_CLEARANCE = 7; // TODO: measure MCU height
PCB_CASE_CLEARANCE = 1;
PCB_SWITCH_OFFSET = 0;

PRO_MICRO_SIZE = [17.8, 33];
PRO_MICRO_USB_OVERHANG = 2; // TODO: measure

MCU_PCB_OFFSET = 3; // socket or header height
MCU_PCB_THICKNESS = 1; // Elite C

// case

CASE_PLATE_BEZEL = 1;
CASE_PLATE_TOLERENCE = 0.25;
CASE_CURVE_RADIUS = 1;
CASE_PLATE_MOUNT_COVERAGE = 1;
CASE_BOLT_HOUSING_WIDTH = 1.5;
CASE_BOTTOM_THICKNESS = 2;
CASE_HEIGHT_ABOVE_PLATE = 0;

// case feet cutouts

FEET_DIAMETER = 15;
FEET_TOLERENCE = 1.25;
FEET_HEIGHT = 1;

// layouts in 1U space

FINGER_GRID = 
    [[0, 2], [1, 2], [2, 2.25], [3, 2.37], [4, 2.25], [5, 2.12],
     [0, 1], [1, 1], [2, 1.25], [3, 1.37], [4, 1.25], [5, 1.12],
     [0, 0], [1, 0], [2, 0.25], [3, 0.37], [4, 0.25], [5, 0.12]];

FINGER_BOLT_HOLES =
    [[1, 2], [5, 2.185],
     [1, 1], [5, 1.185]];

THUMB_GRID = [[0, 0], [1, 0.1]];

THUMB_BOLT_HOLES = 
    [[0.95, 0.925],
     [1.05, 0.175]];

THUMB_TRACKBALL_GRID = [[0, 0], [1.43, 0, "pmw" /* "adns" */ ]];

THUMB_TRACKBALL_BOLT_HOLES = 
    [[0.95, 0.925],
     [0.95, 0.075]];

FEET_POSITIONS =
    [[0.3, 2.75], [5.6, 2.85],
     [0.3, 0.3], [5.95, -1.1]];

THUMB_FEET_POSITIONS =
    [[0.3, 2.75], [5.6, 2.85],
     [0.3, 0.3], [6.45, -1.25]];

// plane rotations

HAND_ROTATION = [5, -8.5, 0];
THUMB_ROTATION = [10, -2, -10.25];
THUMB_OFFSET = [80.5, -21.5, 8.5];

// cutouts

USB_C_SIZE = [8.98, 9.20, 3.28];
USB_C_CUTOUT_TOLERENCE = 0.5;
USB_C_CUTOUT_OUTER_DELTA = 1.5;

TRRS_CUTOUT_SIZE = 5.5;
TRRS_CUTOUT_OUTER_DELTA = 5.5;
// main file
include <../config.scad>;
use <../modules/plate.scad>;
use <../modules/keys.scad>;

linear_extrude(PLATE_THICKNESS)
    plate(
        keyPositions = THUMB_GRID,
        keyHeight = 1.25,
        boltPositions = THUMB_BOLT_HOLES,
        cutHoles = true,
        $fn = 100);
    
if(DRAW_DEBUG)
    %keys(
        keyPositions = THUMB_GRID,
        keyHeight = 1.25,
        $fn = 20);
